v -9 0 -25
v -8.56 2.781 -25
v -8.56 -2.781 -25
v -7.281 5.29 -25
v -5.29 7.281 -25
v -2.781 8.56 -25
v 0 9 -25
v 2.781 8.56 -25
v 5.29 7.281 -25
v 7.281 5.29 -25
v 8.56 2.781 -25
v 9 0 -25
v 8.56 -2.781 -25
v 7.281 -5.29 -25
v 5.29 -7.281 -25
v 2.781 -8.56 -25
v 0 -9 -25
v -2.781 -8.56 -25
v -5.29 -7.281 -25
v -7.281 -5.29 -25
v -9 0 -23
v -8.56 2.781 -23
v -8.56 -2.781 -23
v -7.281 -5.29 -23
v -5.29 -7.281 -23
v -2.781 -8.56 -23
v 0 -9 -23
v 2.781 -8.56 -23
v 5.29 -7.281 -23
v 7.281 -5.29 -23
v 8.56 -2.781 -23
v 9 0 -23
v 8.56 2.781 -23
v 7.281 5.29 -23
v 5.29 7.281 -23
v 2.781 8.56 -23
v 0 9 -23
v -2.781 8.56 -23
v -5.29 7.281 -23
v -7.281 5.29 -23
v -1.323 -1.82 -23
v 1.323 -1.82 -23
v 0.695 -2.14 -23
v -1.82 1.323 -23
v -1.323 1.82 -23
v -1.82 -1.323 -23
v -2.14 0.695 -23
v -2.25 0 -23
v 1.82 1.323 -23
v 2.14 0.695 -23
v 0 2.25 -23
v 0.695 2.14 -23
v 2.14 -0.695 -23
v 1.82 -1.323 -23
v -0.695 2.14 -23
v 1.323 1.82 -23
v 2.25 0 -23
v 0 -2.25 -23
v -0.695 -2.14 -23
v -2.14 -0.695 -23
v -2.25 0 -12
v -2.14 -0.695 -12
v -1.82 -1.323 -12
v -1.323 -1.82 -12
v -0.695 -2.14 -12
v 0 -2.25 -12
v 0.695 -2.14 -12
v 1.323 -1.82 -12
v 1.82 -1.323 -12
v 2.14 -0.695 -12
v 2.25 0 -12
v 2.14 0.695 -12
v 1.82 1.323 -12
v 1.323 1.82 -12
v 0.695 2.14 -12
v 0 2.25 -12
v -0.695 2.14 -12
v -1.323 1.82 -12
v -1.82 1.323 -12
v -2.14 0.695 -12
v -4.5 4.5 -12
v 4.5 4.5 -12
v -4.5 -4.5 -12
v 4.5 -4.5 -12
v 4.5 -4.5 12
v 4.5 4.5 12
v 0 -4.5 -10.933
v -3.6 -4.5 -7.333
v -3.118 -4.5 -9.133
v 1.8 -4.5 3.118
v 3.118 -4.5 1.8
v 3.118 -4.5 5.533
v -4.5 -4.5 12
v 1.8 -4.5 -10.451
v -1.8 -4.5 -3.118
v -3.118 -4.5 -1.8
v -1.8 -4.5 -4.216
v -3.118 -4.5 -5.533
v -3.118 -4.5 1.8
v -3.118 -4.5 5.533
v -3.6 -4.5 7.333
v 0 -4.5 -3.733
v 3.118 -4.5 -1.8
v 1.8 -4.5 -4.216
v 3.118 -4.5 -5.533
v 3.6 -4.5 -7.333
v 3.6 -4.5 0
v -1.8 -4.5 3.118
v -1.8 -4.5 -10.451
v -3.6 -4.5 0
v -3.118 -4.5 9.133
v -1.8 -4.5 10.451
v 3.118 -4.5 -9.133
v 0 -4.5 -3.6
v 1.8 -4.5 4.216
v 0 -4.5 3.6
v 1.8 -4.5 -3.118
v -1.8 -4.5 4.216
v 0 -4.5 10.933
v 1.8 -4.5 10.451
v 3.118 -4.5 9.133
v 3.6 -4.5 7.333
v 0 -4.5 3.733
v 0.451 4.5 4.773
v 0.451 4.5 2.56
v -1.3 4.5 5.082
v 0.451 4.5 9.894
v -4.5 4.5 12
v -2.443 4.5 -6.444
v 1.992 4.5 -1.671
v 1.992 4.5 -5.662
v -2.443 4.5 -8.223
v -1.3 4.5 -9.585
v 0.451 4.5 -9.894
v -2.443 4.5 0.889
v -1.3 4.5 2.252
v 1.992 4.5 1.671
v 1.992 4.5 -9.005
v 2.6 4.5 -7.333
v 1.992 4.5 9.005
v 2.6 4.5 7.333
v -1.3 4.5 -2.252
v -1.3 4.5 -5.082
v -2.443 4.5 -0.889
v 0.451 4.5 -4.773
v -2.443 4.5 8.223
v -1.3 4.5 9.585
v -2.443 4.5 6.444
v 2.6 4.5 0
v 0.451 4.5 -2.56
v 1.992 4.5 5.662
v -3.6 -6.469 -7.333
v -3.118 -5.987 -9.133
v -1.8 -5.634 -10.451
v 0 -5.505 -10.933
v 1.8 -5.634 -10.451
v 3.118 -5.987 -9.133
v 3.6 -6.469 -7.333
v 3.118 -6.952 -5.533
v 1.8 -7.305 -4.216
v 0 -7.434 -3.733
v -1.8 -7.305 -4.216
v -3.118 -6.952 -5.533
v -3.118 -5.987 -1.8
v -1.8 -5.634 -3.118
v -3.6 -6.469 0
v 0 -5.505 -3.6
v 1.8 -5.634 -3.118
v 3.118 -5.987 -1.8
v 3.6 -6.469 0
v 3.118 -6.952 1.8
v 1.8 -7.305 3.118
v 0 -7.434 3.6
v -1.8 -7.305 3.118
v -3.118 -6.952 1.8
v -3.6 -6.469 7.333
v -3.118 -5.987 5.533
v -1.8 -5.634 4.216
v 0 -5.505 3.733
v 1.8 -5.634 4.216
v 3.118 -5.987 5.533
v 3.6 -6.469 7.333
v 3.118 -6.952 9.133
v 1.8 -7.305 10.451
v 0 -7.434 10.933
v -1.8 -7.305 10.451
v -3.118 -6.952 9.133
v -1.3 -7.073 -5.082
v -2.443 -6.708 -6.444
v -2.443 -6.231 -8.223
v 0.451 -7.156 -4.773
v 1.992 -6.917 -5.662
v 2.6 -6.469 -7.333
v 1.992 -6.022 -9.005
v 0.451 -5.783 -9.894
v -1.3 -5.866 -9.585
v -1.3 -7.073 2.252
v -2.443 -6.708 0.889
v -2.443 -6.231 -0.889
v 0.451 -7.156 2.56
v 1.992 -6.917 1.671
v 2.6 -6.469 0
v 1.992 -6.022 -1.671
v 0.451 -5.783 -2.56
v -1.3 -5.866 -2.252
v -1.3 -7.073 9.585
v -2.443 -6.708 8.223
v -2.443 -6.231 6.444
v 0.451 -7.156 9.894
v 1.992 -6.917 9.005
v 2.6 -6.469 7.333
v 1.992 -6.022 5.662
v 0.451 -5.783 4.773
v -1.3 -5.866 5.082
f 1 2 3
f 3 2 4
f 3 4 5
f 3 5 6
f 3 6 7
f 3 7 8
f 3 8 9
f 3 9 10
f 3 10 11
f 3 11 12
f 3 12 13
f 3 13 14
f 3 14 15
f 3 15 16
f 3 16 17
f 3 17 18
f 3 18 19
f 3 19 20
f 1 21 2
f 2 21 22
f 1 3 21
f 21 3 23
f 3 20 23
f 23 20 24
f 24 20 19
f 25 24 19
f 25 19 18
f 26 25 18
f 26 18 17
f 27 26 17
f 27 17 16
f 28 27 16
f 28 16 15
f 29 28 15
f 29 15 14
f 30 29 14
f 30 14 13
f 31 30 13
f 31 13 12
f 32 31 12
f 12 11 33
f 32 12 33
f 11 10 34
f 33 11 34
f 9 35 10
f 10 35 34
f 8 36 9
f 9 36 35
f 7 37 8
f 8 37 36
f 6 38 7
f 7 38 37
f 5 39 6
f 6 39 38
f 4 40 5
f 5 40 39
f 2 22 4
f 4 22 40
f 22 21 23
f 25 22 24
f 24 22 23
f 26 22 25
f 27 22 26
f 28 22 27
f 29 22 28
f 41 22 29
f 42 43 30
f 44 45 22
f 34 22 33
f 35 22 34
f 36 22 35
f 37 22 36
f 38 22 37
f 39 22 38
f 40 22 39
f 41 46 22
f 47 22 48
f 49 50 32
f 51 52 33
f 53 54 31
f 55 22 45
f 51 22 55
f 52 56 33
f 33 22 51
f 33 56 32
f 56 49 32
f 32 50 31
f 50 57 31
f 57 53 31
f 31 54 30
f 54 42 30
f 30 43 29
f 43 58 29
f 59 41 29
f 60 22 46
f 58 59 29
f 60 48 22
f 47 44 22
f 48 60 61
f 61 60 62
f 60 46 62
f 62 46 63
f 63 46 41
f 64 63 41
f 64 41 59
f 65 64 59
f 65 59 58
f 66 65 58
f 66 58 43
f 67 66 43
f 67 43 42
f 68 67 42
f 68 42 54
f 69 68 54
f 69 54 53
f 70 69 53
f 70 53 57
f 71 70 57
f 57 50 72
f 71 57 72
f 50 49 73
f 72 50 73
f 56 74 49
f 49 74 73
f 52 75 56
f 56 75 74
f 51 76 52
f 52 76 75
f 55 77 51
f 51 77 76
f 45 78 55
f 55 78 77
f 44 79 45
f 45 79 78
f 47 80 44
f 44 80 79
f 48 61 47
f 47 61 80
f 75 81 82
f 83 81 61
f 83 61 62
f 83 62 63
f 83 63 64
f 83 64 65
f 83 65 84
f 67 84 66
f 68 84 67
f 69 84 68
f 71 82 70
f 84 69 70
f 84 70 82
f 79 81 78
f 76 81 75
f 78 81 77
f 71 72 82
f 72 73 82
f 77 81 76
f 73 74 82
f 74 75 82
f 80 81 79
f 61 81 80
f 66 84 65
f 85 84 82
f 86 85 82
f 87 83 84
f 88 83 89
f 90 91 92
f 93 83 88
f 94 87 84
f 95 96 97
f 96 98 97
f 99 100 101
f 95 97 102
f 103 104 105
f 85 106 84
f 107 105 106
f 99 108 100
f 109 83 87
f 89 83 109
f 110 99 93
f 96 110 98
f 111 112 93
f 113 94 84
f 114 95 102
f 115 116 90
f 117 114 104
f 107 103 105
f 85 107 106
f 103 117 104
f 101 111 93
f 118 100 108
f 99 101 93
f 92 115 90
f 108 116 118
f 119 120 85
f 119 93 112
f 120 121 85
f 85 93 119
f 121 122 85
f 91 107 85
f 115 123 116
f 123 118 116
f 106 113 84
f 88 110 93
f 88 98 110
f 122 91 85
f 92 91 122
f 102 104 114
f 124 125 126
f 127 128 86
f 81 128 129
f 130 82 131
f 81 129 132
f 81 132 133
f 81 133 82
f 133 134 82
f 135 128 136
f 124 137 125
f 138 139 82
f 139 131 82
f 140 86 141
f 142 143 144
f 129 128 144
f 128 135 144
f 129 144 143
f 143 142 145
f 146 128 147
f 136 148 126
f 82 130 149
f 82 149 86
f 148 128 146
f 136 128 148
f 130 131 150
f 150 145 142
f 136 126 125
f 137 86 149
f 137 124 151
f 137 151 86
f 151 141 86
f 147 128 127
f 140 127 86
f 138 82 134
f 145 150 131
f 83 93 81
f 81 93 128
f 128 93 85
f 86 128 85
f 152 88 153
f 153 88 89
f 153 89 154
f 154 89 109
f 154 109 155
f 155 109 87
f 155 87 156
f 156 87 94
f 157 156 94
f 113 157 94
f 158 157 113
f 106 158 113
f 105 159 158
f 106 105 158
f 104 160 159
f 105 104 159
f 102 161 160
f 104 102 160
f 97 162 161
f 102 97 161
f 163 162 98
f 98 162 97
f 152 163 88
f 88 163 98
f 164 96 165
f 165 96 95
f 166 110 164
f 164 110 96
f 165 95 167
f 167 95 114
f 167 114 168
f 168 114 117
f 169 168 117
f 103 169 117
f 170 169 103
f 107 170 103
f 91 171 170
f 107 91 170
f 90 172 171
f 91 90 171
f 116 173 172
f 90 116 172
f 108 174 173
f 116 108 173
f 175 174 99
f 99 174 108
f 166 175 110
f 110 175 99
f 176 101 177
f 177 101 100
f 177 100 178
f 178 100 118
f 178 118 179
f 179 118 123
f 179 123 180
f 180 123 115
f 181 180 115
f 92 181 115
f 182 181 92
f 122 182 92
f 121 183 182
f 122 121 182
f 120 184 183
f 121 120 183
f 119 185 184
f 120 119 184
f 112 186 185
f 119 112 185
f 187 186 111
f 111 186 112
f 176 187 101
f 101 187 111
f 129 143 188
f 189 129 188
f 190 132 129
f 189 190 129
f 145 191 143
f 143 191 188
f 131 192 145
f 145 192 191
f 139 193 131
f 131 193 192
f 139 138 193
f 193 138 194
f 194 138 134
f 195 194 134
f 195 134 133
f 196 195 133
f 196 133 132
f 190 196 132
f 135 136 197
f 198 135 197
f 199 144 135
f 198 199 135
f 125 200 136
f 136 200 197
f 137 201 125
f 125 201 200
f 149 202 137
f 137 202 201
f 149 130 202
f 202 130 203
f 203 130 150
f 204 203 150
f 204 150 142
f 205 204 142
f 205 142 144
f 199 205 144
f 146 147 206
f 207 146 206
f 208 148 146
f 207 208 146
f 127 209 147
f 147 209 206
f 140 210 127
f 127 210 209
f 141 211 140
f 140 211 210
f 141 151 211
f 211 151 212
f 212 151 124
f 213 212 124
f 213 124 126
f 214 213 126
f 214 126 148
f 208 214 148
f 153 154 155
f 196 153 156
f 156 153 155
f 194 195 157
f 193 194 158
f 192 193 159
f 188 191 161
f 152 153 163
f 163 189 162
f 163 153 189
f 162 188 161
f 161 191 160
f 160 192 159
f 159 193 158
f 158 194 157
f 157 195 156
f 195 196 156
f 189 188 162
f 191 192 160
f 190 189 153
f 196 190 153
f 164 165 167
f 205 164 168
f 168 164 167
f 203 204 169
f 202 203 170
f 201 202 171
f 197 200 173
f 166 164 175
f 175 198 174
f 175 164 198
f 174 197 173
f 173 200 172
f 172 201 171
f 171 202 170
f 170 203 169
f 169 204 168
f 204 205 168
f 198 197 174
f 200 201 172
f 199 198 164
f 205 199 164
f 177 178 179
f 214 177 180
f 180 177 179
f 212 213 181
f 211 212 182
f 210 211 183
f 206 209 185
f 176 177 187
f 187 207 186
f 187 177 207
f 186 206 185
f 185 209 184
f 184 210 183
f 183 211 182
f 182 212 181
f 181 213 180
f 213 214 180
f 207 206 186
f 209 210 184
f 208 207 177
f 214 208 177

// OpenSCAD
wallwidth=1;
overlap=0.01;

module shade() {
	translate([0, 0, 2]) difference() {
		cylinder(center=true,r=3.6,h=4);
		translate([0, 0, 2.05]) rotate([15, 0, 0]) cube(center=true, [20, 20, 4]);
	}
}

module chamber() {
	rotate(a=[90, 0, 0]) cylinder(center=true, r=2.6, h=30);
}

module three_shades(size, delta) {
	translate([0, overlap-size/2, delta]) rotate([90, 0, 0]) shade();
	translate([0, overlap-size/2, 0]) rotate([90, 0, 0]) shade();
	translate([0, overlap-size/2, -delta]) rotate([90, 0, 0]) shade();
}

module corpse(size, height) {
	delta=(height-2*wallwidth)/3;
	difference() {
		union() {
			cube(center=true,[size, size, height]);
			three_shades(size, delta);
		}
		translate([0, 0, delta]) chamber();
		chamber();
		translate([0, 0, -delta]) chamber();
	}
	translate([0, 0, -.75*height]) cylinder(r=size/4, h=height/2, center=true, $fn=20);
	translate([0, 0, -height]) cylinder(r=size, h=2, center=true, $fn=20);
}

corpse(9, 24);
*chamber();
*shade();
*three_shades();
